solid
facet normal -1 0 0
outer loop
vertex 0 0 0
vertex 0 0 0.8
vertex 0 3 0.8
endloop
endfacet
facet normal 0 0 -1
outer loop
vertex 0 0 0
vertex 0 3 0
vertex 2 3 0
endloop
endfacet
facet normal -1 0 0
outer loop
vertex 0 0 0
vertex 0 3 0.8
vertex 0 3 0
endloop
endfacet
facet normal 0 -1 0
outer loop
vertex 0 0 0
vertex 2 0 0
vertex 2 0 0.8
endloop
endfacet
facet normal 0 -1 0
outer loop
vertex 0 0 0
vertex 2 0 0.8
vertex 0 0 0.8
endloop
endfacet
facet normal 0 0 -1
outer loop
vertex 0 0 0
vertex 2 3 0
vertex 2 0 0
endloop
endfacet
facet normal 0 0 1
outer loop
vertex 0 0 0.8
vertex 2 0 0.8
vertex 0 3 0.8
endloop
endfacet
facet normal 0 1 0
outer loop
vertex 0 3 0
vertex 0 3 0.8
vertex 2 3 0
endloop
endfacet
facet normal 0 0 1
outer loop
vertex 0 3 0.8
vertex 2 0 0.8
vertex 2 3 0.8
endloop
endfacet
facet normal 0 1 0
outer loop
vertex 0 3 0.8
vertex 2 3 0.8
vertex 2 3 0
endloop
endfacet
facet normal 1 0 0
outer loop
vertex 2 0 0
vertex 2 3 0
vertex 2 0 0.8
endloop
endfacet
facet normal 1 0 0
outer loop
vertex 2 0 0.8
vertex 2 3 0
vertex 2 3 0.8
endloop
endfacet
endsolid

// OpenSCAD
/* Warning, this is a very basic generator with a lot of approximation 
input data : [WDFN, QEB, 2x3x0.8mm, 8, , A, C04-21364A]
generated by com.zoubworld.electronics.cad.model3d.Basic
Date : Sun Feb 15 10:50:49 CET 2026
*/

//body
color("black")
translate([0,0,0])
cube([2.0,3.0,0.8], center=false);
